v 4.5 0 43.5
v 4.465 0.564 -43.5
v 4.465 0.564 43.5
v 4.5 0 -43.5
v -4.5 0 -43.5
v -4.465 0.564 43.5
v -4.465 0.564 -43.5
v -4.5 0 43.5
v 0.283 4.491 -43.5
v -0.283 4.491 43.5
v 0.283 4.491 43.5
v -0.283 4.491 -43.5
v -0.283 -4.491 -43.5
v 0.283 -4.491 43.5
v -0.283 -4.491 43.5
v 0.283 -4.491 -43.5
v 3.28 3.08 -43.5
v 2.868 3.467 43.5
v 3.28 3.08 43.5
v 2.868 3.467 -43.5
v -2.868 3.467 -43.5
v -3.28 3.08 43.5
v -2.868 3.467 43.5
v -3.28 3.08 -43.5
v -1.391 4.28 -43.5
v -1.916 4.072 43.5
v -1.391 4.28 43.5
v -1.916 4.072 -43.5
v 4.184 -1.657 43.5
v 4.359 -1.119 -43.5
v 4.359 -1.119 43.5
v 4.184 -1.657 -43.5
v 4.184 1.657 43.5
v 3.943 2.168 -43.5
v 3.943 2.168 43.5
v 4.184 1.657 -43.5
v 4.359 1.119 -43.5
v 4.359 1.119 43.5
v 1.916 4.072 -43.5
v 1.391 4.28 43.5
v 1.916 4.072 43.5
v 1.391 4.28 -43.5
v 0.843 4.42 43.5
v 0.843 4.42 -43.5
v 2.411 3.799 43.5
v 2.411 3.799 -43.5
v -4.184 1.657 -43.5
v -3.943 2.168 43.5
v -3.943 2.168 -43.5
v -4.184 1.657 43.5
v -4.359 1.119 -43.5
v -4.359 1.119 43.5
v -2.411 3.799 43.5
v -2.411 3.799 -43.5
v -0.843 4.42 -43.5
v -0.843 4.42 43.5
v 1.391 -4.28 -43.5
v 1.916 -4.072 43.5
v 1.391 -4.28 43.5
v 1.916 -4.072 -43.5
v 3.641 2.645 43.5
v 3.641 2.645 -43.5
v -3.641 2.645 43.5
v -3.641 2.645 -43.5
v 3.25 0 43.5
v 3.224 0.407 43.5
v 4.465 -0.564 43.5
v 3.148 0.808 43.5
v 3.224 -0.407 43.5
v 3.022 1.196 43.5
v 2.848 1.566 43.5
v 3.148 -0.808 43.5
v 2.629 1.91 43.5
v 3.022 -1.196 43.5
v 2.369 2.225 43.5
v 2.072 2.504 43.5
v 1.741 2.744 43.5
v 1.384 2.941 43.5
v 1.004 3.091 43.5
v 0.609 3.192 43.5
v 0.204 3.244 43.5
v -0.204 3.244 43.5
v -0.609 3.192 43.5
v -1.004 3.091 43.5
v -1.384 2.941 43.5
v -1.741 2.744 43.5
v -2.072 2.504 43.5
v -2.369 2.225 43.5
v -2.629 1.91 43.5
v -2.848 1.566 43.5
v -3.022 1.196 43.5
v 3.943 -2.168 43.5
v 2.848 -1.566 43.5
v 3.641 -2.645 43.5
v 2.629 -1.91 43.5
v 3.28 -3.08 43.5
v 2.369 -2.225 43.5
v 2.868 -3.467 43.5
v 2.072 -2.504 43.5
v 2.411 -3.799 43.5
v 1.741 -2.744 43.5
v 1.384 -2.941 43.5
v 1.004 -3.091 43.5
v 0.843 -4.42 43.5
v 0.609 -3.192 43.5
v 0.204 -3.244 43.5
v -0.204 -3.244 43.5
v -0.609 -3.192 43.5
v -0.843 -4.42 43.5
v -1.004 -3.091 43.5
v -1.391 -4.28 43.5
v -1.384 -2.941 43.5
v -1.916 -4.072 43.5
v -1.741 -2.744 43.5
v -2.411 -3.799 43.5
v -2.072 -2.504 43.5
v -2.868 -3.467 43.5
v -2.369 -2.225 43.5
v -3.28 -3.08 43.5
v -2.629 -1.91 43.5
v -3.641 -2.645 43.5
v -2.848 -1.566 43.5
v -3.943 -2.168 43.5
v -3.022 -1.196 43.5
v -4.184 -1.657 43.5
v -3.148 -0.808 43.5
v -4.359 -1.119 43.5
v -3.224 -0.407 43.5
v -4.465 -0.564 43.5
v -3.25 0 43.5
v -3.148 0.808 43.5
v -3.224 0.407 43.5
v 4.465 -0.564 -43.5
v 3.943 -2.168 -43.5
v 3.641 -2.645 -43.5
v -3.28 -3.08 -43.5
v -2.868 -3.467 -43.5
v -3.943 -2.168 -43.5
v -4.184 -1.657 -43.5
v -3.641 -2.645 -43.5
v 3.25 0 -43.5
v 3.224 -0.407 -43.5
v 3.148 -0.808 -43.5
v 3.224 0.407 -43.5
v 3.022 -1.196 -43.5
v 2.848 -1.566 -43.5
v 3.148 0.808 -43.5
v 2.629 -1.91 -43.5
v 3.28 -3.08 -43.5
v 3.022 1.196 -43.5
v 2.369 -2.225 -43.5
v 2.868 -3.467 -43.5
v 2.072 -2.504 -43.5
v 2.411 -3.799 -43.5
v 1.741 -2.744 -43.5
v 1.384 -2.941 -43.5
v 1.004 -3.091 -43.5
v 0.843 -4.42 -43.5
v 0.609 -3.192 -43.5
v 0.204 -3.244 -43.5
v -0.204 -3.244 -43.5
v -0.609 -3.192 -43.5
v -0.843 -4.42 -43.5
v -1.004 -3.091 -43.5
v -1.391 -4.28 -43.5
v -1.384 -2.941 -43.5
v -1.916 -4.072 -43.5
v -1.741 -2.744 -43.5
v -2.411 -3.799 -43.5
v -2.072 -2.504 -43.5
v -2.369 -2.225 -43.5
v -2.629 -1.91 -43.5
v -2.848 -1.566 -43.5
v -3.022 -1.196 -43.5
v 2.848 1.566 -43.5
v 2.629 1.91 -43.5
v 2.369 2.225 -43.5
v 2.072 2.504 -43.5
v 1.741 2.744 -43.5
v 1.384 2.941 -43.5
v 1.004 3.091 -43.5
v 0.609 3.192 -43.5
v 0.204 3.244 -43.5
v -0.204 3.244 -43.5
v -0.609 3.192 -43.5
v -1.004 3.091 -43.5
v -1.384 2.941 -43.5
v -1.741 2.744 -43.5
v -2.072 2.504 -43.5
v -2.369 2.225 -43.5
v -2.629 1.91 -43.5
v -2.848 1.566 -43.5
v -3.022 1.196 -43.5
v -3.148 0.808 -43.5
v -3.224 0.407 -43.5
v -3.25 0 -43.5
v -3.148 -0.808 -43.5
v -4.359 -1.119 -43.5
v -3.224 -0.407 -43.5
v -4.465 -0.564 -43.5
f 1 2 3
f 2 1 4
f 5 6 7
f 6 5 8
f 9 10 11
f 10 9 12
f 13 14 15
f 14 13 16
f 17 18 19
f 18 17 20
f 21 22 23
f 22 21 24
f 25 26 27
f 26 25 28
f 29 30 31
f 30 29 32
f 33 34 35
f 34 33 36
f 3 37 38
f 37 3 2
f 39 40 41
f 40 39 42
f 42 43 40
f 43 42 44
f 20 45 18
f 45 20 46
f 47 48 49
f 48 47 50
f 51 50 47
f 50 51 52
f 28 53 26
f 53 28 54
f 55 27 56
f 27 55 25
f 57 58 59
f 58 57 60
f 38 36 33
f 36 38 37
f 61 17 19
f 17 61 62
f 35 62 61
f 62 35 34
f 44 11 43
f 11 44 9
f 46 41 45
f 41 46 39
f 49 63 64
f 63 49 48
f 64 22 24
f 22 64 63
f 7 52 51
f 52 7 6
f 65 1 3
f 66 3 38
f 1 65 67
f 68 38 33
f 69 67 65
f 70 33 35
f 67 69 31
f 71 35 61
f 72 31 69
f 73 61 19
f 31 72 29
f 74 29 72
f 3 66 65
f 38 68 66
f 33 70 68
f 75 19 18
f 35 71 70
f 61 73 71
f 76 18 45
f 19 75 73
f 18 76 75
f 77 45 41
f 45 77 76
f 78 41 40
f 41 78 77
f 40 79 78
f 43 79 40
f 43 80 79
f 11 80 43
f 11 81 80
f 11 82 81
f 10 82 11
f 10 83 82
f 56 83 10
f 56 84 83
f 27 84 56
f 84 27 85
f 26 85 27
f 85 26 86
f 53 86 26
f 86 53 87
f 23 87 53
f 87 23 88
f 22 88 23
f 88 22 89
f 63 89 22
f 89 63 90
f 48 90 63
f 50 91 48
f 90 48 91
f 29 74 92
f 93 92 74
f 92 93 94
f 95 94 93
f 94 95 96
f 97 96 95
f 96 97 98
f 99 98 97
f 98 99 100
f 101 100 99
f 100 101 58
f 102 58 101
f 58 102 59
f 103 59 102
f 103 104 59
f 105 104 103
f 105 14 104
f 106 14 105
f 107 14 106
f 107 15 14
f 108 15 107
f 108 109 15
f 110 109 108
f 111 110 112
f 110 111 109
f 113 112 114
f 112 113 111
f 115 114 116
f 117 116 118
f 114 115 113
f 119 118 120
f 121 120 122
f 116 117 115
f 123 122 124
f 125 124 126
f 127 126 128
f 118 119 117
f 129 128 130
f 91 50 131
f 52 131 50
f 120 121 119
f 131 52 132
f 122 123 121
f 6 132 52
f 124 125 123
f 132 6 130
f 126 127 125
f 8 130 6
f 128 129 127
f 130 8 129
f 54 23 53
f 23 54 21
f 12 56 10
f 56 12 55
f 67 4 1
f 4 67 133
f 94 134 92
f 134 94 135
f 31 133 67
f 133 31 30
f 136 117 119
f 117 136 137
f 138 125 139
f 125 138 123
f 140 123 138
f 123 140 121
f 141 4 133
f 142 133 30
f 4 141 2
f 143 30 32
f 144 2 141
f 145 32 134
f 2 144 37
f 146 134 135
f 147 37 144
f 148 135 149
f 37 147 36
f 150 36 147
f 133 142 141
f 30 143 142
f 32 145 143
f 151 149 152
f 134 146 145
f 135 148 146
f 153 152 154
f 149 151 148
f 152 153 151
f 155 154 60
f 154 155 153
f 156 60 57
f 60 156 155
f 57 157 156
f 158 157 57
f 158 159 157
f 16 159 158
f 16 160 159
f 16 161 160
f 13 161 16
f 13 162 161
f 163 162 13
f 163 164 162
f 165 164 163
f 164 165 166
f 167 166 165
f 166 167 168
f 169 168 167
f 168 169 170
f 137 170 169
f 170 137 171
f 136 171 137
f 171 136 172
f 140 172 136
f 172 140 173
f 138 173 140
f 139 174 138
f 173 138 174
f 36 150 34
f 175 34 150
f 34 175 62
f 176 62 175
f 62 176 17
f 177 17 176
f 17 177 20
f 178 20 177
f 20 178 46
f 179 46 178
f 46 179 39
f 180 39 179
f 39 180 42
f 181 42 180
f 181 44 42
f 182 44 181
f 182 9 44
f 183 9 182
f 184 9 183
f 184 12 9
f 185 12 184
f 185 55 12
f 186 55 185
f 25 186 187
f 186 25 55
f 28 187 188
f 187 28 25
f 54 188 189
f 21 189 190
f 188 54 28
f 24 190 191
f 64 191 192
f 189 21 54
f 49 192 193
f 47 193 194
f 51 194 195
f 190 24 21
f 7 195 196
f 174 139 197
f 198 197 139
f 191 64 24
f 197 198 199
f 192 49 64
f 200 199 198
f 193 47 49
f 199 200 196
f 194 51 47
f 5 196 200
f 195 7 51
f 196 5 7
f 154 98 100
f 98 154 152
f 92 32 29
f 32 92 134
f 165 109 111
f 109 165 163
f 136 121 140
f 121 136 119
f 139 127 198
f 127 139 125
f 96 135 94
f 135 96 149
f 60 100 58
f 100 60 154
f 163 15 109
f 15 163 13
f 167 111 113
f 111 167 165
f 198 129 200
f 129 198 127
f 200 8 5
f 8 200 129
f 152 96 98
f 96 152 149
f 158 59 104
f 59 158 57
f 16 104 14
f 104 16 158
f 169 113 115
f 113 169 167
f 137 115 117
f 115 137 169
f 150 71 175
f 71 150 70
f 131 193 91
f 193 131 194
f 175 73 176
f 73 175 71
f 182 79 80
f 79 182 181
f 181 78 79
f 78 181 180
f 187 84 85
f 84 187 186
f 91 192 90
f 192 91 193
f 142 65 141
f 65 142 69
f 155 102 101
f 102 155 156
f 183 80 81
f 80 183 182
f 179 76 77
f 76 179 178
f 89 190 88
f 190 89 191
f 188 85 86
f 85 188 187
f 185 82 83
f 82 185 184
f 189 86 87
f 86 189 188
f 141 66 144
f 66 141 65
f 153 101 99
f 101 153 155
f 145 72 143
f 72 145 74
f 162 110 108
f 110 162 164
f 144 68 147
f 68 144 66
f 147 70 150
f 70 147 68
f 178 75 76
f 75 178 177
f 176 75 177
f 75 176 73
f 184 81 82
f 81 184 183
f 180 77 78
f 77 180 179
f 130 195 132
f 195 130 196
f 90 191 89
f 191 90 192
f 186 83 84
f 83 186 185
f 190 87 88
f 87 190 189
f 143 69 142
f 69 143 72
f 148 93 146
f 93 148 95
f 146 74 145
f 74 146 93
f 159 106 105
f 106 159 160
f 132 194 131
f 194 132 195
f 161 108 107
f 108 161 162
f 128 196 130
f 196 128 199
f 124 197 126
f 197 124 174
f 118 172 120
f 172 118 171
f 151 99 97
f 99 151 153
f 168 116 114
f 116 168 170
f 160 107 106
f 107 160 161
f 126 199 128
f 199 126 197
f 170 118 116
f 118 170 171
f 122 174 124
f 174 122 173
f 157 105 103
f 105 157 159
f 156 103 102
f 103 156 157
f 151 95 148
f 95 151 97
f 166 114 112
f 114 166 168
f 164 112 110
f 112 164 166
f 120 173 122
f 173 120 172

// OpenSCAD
$fn = 50;


difference() {
	union() {
		translate(v = [0, 0, -43.5000000000]) {
			cylinder(h = 87, r = 4.5000000000);
		}
	}
	union() {
		translate(v = [0, 0, -100.0000000000]) {
			cylinder(h = 200, r = 3.2500000000);
		}
	}
}
